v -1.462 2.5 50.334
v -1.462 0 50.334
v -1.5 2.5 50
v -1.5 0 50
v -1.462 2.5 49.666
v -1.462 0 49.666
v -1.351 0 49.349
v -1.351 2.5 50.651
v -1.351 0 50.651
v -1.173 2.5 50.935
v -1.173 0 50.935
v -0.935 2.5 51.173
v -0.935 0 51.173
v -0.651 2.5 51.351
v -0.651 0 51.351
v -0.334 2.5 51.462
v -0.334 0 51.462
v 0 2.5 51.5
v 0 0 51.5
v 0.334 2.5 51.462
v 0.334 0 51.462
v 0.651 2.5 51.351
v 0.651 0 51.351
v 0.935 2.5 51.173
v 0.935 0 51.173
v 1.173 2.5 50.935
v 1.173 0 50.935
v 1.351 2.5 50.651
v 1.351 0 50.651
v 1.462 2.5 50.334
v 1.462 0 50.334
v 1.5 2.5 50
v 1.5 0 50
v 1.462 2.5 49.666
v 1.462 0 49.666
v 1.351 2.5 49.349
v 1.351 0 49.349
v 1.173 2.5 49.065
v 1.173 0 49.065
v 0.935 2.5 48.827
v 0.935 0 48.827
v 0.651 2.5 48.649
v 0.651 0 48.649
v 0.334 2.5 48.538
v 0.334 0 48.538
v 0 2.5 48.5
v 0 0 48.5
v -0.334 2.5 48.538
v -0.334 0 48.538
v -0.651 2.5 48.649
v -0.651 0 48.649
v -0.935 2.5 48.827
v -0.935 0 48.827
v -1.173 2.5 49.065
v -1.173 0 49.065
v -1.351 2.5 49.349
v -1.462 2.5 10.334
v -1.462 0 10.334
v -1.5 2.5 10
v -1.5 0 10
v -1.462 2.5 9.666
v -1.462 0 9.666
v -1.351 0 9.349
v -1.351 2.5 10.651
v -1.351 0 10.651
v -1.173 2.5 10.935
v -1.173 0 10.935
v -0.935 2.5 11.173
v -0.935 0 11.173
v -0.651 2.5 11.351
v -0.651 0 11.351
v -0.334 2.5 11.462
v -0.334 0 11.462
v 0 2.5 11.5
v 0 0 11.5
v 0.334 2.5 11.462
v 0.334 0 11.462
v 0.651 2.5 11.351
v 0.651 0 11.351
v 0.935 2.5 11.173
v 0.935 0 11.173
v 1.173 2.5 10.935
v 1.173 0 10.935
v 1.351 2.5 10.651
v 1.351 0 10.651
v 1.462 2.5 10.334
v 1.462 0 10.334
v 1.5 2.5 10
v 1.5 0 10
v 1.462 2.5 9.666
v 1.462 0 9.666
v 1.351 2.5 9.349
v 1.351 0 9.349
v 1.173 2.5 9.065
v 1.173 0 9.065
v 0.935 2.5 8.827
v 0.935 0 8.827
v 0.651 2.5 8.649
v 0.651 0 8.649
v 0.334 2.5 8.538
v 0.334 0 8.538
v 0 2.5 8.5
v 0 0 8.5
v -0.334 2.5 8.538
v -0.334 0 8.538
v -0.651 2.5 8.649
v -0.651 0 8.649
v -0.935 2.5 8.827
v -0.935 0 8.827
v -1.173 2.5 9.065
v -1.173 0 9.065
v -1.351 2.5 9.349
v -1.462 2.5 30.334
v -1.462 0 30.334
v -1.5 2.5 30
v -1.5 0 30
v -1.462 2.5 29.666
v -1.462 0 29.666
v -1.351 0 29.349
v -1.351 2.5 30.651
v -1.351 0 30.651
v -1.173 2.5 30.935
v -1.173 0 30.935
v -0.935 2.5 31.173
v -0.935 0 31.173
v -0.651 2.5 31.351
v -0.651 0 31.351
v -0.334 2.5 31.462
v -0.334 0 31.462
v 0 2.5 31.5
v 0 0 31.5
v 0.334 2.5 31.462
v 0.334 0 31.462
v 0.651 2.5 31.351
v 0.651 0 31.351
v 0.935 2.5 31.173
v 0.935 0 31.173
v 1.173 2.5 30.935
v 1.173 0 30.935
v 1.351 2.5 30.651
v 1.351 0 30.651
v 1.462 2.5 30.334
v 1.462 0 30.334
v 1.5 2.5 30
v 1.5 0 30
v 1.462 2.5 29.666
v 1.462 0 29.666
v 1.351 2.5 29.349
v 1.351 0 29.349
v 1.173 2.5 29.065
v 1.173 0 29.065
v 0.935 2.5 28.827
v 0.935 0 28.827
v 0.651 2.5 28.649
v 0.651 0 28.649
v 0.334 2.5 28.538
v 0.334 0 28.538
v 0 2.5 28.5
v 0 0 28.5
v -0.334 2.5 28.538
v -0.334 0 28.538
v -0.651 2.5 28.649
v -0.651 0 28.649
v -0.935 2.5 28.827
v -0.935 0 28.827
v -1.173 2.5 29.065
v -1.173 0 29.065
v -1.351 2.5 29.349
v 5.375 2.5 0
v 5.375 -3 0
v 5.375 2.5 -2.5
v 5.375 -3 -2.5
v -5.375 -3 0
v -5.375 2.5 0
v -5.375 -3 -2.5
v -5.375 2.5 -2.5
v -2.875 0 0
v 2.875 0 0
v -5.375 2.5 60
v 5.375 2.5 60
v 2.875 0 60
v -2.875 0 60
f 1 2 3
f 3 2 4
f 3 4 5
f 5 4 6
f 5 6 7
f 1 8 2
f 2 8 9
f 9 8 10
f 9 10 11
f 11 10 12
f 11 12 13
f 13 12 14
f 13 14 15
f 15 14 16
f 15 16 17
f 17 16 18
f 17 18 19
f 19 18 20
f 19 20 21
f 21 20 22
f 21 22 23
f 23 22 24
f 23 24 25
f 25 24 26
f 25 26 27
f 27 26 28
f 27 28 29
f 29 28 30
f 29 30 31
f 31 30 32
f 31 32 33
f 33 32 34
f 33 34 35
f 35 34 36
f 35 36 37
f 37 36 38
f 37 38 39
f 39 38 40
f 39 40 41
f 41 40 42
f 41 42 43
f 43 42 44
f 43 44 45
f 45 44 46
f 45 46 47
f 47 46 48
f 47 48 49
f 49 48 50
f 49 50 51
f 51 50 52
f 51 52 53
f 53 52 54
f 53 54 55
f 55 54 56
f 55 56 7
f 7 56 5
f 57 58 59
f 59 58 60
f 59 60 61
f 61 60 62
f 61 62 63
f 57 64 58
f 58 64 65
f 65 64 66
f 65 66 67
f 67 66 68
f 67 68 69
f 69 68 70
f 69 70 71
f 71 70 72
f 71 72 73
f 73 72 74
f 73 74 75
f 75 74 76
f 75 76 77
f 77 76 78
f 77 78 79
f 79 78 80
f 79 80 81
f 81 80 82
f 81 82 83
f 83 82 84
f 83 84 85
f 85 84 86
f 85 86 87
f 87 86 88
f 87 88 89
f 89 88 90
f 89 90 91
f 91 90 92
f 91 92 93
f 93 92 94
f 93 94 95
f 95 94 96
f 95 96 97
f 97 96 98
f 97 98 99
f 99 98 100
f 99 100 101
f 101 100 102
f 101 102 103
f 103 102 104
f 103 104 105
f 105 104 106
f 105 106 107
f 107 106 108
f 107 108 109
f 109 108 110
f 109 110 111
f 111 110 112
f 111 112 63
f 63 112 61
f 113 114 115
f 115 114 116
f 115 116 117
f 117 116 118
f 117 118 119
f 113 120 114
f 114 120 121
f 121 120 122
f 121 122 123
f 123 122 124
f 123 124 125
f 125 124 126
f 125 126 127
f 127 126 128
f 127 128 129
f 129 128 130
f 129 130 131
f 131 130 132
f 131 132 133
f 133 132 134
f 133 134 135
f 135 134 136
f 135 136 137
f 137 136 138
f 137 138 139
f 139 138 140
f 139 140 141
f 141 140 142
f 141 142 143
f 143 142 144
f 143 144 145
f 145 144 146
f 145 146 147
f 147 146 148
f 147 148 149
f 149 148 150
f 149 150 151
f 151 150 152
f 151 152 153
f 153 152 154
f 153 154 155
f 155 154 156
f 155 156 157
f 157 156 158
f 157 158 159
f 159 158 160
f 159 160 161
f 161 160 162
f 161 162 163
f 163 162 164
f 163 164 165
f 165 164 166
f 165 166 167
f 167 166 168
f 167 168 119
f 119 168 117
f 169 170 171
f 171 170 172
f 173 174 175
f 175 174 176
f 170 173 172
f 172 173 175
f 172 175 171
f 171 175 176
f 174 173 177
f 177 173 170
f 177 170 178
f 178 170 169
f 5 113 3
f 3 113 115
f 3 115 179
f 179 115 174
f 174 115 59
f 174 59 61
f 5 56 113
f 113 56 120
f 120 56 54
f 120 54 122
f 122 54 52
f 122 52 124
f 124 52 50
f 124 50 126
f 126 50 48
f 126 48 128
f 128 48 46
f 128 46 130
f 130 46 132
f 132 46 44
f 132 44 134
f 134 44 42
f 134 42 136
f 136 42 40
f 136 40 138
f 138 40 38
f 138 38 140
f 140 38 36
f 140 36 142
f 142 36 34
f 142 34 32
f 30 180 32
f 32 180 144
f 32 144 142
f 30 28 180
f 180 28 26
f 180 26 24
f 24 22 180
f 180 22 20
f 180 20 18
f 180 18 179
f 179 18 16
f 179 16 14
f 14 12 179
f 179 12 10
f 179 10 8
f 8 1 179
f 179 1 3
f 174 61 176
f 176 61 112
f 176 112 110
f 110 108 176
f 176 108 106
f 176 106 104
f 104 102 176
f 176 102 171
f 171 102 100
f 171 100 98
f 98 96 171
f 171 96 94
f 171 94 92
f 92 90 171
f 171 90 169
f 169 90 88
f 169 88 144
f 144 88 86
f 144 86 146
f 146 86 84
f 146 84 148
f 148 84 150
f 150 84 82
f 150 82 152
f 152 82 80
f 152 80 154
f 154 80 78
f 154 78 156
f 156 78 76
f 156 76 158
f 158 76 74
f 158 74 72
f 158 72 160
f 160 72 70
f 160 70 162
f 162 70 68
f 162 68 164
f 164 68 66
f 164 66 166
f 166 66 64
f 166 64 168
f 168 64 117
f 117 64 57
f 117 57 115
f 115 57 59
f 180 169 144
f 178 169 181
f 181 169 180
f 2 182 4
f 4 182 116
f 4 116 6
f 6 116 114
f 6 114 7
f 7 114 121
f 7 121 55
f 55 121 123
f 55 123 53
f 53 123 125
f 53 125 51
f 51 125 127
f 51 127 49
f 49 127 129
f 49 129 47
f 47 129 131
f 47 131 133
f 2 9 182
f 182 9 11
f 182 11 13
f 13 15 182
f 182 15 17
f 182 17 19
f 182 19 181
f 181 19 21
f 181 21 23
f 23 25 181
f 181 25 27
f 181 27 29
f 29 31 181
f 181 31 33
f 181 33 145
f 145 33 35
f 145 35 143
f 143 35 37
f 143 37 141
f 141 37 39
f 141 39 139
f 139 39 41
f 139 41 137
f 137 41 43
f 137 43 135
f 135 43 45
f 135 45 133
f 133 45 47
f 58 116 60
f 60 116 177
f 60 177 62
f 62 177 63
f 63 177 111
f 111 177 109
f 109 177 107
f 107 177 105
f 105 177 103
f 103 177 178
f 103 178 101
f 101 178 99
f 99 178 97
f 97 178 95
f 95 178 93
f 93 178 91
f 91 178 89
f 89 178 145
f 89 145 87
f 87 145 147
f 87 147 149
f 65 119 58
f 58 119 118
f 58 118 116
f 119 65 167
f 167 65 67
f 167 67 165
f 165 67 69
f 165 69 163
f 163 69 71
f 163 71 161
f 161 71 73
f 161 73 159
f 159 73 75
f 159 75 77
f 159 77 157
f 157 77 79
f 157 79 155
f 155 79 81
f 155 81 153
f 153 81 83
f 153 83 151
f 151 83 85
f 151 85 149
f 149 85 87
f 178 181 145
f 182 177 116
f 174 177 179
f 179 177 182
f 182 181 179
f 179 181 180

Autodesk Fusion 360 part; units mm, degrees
sketch "Sketch1" plane through (0, 0, 0) normal (0, 0, 1) x (1, 0, 0)
  line L0 (-2.875, 0) -> (2.875, 0)
  line L1 (-5.375, 2.5) -> (5.375, 2.5)
  line L2 (-5.375, 2.5) -> (-2.875, 0)
  line L3 (5.375, 2.5) -> (2.875, 0)
  line L4 (0, 7.9451) -> (0, -6.0549)
  dimension "d1" = 5.75
  dimension "d2" = 10.75
  dimension "d3" = 2.5
extrude "Extrude1" add sketch "Sketch1" along normal blind 60
sketch "Sketch2" plane through (0, 0, 0) normal (0, 0, -1) x (-1, 0, 0)
  line L0 (2.875, 0) -> (5.375, 2.5)
  line L1 (5.375, 2.5) -> (-5.375, 2.5)
  line L2 (-5.375, 2.5) -> (-2.875, 0)
  line L3 (-2.875, 0) -> (2.875, 0)
  line L4 (-5.375, 2.5) -> (5.375, 2.5)
  line L5 (5.375, 2.5) -> (5.375, -3)
  line L6 (5.375, -3) -> (-5.375, -3)
  line L7 (-5.375, -3) -> (-5.375, 2.5)
  dimension "d6" = 10.75
  dimension "d7" = 5.5
extrude "Extrude2" add sketch "Sketch2" along normal blind 2.5
sketch "Sketch3" plane through (0, 0, 0) normal (0, -1, 0) x (1, 0, 0)
  line L0 (-2.875, 0) -> (2.875, 0)
  line L1 (2.875, 0) -> (2.875, 60)
  line L2 (2.875, 60) -> (-2.875, 60)
  line L3 (-2.875, 60) -> (-2.875, 0)
  circle A0 centre (0, 10) radius 1.5
  circle A1 centre (0, 30) radius 1.5
  circle A2 centre (0, 50) radius 1.5
  dimension "d10" = 3
  dimension "d11" = 10
  dimension "d12" = 30
  dimension "d13" = 20
extrude "Extrude3" cut sketch "Sketch3" against normal through all contours A0 | A1 | A2
